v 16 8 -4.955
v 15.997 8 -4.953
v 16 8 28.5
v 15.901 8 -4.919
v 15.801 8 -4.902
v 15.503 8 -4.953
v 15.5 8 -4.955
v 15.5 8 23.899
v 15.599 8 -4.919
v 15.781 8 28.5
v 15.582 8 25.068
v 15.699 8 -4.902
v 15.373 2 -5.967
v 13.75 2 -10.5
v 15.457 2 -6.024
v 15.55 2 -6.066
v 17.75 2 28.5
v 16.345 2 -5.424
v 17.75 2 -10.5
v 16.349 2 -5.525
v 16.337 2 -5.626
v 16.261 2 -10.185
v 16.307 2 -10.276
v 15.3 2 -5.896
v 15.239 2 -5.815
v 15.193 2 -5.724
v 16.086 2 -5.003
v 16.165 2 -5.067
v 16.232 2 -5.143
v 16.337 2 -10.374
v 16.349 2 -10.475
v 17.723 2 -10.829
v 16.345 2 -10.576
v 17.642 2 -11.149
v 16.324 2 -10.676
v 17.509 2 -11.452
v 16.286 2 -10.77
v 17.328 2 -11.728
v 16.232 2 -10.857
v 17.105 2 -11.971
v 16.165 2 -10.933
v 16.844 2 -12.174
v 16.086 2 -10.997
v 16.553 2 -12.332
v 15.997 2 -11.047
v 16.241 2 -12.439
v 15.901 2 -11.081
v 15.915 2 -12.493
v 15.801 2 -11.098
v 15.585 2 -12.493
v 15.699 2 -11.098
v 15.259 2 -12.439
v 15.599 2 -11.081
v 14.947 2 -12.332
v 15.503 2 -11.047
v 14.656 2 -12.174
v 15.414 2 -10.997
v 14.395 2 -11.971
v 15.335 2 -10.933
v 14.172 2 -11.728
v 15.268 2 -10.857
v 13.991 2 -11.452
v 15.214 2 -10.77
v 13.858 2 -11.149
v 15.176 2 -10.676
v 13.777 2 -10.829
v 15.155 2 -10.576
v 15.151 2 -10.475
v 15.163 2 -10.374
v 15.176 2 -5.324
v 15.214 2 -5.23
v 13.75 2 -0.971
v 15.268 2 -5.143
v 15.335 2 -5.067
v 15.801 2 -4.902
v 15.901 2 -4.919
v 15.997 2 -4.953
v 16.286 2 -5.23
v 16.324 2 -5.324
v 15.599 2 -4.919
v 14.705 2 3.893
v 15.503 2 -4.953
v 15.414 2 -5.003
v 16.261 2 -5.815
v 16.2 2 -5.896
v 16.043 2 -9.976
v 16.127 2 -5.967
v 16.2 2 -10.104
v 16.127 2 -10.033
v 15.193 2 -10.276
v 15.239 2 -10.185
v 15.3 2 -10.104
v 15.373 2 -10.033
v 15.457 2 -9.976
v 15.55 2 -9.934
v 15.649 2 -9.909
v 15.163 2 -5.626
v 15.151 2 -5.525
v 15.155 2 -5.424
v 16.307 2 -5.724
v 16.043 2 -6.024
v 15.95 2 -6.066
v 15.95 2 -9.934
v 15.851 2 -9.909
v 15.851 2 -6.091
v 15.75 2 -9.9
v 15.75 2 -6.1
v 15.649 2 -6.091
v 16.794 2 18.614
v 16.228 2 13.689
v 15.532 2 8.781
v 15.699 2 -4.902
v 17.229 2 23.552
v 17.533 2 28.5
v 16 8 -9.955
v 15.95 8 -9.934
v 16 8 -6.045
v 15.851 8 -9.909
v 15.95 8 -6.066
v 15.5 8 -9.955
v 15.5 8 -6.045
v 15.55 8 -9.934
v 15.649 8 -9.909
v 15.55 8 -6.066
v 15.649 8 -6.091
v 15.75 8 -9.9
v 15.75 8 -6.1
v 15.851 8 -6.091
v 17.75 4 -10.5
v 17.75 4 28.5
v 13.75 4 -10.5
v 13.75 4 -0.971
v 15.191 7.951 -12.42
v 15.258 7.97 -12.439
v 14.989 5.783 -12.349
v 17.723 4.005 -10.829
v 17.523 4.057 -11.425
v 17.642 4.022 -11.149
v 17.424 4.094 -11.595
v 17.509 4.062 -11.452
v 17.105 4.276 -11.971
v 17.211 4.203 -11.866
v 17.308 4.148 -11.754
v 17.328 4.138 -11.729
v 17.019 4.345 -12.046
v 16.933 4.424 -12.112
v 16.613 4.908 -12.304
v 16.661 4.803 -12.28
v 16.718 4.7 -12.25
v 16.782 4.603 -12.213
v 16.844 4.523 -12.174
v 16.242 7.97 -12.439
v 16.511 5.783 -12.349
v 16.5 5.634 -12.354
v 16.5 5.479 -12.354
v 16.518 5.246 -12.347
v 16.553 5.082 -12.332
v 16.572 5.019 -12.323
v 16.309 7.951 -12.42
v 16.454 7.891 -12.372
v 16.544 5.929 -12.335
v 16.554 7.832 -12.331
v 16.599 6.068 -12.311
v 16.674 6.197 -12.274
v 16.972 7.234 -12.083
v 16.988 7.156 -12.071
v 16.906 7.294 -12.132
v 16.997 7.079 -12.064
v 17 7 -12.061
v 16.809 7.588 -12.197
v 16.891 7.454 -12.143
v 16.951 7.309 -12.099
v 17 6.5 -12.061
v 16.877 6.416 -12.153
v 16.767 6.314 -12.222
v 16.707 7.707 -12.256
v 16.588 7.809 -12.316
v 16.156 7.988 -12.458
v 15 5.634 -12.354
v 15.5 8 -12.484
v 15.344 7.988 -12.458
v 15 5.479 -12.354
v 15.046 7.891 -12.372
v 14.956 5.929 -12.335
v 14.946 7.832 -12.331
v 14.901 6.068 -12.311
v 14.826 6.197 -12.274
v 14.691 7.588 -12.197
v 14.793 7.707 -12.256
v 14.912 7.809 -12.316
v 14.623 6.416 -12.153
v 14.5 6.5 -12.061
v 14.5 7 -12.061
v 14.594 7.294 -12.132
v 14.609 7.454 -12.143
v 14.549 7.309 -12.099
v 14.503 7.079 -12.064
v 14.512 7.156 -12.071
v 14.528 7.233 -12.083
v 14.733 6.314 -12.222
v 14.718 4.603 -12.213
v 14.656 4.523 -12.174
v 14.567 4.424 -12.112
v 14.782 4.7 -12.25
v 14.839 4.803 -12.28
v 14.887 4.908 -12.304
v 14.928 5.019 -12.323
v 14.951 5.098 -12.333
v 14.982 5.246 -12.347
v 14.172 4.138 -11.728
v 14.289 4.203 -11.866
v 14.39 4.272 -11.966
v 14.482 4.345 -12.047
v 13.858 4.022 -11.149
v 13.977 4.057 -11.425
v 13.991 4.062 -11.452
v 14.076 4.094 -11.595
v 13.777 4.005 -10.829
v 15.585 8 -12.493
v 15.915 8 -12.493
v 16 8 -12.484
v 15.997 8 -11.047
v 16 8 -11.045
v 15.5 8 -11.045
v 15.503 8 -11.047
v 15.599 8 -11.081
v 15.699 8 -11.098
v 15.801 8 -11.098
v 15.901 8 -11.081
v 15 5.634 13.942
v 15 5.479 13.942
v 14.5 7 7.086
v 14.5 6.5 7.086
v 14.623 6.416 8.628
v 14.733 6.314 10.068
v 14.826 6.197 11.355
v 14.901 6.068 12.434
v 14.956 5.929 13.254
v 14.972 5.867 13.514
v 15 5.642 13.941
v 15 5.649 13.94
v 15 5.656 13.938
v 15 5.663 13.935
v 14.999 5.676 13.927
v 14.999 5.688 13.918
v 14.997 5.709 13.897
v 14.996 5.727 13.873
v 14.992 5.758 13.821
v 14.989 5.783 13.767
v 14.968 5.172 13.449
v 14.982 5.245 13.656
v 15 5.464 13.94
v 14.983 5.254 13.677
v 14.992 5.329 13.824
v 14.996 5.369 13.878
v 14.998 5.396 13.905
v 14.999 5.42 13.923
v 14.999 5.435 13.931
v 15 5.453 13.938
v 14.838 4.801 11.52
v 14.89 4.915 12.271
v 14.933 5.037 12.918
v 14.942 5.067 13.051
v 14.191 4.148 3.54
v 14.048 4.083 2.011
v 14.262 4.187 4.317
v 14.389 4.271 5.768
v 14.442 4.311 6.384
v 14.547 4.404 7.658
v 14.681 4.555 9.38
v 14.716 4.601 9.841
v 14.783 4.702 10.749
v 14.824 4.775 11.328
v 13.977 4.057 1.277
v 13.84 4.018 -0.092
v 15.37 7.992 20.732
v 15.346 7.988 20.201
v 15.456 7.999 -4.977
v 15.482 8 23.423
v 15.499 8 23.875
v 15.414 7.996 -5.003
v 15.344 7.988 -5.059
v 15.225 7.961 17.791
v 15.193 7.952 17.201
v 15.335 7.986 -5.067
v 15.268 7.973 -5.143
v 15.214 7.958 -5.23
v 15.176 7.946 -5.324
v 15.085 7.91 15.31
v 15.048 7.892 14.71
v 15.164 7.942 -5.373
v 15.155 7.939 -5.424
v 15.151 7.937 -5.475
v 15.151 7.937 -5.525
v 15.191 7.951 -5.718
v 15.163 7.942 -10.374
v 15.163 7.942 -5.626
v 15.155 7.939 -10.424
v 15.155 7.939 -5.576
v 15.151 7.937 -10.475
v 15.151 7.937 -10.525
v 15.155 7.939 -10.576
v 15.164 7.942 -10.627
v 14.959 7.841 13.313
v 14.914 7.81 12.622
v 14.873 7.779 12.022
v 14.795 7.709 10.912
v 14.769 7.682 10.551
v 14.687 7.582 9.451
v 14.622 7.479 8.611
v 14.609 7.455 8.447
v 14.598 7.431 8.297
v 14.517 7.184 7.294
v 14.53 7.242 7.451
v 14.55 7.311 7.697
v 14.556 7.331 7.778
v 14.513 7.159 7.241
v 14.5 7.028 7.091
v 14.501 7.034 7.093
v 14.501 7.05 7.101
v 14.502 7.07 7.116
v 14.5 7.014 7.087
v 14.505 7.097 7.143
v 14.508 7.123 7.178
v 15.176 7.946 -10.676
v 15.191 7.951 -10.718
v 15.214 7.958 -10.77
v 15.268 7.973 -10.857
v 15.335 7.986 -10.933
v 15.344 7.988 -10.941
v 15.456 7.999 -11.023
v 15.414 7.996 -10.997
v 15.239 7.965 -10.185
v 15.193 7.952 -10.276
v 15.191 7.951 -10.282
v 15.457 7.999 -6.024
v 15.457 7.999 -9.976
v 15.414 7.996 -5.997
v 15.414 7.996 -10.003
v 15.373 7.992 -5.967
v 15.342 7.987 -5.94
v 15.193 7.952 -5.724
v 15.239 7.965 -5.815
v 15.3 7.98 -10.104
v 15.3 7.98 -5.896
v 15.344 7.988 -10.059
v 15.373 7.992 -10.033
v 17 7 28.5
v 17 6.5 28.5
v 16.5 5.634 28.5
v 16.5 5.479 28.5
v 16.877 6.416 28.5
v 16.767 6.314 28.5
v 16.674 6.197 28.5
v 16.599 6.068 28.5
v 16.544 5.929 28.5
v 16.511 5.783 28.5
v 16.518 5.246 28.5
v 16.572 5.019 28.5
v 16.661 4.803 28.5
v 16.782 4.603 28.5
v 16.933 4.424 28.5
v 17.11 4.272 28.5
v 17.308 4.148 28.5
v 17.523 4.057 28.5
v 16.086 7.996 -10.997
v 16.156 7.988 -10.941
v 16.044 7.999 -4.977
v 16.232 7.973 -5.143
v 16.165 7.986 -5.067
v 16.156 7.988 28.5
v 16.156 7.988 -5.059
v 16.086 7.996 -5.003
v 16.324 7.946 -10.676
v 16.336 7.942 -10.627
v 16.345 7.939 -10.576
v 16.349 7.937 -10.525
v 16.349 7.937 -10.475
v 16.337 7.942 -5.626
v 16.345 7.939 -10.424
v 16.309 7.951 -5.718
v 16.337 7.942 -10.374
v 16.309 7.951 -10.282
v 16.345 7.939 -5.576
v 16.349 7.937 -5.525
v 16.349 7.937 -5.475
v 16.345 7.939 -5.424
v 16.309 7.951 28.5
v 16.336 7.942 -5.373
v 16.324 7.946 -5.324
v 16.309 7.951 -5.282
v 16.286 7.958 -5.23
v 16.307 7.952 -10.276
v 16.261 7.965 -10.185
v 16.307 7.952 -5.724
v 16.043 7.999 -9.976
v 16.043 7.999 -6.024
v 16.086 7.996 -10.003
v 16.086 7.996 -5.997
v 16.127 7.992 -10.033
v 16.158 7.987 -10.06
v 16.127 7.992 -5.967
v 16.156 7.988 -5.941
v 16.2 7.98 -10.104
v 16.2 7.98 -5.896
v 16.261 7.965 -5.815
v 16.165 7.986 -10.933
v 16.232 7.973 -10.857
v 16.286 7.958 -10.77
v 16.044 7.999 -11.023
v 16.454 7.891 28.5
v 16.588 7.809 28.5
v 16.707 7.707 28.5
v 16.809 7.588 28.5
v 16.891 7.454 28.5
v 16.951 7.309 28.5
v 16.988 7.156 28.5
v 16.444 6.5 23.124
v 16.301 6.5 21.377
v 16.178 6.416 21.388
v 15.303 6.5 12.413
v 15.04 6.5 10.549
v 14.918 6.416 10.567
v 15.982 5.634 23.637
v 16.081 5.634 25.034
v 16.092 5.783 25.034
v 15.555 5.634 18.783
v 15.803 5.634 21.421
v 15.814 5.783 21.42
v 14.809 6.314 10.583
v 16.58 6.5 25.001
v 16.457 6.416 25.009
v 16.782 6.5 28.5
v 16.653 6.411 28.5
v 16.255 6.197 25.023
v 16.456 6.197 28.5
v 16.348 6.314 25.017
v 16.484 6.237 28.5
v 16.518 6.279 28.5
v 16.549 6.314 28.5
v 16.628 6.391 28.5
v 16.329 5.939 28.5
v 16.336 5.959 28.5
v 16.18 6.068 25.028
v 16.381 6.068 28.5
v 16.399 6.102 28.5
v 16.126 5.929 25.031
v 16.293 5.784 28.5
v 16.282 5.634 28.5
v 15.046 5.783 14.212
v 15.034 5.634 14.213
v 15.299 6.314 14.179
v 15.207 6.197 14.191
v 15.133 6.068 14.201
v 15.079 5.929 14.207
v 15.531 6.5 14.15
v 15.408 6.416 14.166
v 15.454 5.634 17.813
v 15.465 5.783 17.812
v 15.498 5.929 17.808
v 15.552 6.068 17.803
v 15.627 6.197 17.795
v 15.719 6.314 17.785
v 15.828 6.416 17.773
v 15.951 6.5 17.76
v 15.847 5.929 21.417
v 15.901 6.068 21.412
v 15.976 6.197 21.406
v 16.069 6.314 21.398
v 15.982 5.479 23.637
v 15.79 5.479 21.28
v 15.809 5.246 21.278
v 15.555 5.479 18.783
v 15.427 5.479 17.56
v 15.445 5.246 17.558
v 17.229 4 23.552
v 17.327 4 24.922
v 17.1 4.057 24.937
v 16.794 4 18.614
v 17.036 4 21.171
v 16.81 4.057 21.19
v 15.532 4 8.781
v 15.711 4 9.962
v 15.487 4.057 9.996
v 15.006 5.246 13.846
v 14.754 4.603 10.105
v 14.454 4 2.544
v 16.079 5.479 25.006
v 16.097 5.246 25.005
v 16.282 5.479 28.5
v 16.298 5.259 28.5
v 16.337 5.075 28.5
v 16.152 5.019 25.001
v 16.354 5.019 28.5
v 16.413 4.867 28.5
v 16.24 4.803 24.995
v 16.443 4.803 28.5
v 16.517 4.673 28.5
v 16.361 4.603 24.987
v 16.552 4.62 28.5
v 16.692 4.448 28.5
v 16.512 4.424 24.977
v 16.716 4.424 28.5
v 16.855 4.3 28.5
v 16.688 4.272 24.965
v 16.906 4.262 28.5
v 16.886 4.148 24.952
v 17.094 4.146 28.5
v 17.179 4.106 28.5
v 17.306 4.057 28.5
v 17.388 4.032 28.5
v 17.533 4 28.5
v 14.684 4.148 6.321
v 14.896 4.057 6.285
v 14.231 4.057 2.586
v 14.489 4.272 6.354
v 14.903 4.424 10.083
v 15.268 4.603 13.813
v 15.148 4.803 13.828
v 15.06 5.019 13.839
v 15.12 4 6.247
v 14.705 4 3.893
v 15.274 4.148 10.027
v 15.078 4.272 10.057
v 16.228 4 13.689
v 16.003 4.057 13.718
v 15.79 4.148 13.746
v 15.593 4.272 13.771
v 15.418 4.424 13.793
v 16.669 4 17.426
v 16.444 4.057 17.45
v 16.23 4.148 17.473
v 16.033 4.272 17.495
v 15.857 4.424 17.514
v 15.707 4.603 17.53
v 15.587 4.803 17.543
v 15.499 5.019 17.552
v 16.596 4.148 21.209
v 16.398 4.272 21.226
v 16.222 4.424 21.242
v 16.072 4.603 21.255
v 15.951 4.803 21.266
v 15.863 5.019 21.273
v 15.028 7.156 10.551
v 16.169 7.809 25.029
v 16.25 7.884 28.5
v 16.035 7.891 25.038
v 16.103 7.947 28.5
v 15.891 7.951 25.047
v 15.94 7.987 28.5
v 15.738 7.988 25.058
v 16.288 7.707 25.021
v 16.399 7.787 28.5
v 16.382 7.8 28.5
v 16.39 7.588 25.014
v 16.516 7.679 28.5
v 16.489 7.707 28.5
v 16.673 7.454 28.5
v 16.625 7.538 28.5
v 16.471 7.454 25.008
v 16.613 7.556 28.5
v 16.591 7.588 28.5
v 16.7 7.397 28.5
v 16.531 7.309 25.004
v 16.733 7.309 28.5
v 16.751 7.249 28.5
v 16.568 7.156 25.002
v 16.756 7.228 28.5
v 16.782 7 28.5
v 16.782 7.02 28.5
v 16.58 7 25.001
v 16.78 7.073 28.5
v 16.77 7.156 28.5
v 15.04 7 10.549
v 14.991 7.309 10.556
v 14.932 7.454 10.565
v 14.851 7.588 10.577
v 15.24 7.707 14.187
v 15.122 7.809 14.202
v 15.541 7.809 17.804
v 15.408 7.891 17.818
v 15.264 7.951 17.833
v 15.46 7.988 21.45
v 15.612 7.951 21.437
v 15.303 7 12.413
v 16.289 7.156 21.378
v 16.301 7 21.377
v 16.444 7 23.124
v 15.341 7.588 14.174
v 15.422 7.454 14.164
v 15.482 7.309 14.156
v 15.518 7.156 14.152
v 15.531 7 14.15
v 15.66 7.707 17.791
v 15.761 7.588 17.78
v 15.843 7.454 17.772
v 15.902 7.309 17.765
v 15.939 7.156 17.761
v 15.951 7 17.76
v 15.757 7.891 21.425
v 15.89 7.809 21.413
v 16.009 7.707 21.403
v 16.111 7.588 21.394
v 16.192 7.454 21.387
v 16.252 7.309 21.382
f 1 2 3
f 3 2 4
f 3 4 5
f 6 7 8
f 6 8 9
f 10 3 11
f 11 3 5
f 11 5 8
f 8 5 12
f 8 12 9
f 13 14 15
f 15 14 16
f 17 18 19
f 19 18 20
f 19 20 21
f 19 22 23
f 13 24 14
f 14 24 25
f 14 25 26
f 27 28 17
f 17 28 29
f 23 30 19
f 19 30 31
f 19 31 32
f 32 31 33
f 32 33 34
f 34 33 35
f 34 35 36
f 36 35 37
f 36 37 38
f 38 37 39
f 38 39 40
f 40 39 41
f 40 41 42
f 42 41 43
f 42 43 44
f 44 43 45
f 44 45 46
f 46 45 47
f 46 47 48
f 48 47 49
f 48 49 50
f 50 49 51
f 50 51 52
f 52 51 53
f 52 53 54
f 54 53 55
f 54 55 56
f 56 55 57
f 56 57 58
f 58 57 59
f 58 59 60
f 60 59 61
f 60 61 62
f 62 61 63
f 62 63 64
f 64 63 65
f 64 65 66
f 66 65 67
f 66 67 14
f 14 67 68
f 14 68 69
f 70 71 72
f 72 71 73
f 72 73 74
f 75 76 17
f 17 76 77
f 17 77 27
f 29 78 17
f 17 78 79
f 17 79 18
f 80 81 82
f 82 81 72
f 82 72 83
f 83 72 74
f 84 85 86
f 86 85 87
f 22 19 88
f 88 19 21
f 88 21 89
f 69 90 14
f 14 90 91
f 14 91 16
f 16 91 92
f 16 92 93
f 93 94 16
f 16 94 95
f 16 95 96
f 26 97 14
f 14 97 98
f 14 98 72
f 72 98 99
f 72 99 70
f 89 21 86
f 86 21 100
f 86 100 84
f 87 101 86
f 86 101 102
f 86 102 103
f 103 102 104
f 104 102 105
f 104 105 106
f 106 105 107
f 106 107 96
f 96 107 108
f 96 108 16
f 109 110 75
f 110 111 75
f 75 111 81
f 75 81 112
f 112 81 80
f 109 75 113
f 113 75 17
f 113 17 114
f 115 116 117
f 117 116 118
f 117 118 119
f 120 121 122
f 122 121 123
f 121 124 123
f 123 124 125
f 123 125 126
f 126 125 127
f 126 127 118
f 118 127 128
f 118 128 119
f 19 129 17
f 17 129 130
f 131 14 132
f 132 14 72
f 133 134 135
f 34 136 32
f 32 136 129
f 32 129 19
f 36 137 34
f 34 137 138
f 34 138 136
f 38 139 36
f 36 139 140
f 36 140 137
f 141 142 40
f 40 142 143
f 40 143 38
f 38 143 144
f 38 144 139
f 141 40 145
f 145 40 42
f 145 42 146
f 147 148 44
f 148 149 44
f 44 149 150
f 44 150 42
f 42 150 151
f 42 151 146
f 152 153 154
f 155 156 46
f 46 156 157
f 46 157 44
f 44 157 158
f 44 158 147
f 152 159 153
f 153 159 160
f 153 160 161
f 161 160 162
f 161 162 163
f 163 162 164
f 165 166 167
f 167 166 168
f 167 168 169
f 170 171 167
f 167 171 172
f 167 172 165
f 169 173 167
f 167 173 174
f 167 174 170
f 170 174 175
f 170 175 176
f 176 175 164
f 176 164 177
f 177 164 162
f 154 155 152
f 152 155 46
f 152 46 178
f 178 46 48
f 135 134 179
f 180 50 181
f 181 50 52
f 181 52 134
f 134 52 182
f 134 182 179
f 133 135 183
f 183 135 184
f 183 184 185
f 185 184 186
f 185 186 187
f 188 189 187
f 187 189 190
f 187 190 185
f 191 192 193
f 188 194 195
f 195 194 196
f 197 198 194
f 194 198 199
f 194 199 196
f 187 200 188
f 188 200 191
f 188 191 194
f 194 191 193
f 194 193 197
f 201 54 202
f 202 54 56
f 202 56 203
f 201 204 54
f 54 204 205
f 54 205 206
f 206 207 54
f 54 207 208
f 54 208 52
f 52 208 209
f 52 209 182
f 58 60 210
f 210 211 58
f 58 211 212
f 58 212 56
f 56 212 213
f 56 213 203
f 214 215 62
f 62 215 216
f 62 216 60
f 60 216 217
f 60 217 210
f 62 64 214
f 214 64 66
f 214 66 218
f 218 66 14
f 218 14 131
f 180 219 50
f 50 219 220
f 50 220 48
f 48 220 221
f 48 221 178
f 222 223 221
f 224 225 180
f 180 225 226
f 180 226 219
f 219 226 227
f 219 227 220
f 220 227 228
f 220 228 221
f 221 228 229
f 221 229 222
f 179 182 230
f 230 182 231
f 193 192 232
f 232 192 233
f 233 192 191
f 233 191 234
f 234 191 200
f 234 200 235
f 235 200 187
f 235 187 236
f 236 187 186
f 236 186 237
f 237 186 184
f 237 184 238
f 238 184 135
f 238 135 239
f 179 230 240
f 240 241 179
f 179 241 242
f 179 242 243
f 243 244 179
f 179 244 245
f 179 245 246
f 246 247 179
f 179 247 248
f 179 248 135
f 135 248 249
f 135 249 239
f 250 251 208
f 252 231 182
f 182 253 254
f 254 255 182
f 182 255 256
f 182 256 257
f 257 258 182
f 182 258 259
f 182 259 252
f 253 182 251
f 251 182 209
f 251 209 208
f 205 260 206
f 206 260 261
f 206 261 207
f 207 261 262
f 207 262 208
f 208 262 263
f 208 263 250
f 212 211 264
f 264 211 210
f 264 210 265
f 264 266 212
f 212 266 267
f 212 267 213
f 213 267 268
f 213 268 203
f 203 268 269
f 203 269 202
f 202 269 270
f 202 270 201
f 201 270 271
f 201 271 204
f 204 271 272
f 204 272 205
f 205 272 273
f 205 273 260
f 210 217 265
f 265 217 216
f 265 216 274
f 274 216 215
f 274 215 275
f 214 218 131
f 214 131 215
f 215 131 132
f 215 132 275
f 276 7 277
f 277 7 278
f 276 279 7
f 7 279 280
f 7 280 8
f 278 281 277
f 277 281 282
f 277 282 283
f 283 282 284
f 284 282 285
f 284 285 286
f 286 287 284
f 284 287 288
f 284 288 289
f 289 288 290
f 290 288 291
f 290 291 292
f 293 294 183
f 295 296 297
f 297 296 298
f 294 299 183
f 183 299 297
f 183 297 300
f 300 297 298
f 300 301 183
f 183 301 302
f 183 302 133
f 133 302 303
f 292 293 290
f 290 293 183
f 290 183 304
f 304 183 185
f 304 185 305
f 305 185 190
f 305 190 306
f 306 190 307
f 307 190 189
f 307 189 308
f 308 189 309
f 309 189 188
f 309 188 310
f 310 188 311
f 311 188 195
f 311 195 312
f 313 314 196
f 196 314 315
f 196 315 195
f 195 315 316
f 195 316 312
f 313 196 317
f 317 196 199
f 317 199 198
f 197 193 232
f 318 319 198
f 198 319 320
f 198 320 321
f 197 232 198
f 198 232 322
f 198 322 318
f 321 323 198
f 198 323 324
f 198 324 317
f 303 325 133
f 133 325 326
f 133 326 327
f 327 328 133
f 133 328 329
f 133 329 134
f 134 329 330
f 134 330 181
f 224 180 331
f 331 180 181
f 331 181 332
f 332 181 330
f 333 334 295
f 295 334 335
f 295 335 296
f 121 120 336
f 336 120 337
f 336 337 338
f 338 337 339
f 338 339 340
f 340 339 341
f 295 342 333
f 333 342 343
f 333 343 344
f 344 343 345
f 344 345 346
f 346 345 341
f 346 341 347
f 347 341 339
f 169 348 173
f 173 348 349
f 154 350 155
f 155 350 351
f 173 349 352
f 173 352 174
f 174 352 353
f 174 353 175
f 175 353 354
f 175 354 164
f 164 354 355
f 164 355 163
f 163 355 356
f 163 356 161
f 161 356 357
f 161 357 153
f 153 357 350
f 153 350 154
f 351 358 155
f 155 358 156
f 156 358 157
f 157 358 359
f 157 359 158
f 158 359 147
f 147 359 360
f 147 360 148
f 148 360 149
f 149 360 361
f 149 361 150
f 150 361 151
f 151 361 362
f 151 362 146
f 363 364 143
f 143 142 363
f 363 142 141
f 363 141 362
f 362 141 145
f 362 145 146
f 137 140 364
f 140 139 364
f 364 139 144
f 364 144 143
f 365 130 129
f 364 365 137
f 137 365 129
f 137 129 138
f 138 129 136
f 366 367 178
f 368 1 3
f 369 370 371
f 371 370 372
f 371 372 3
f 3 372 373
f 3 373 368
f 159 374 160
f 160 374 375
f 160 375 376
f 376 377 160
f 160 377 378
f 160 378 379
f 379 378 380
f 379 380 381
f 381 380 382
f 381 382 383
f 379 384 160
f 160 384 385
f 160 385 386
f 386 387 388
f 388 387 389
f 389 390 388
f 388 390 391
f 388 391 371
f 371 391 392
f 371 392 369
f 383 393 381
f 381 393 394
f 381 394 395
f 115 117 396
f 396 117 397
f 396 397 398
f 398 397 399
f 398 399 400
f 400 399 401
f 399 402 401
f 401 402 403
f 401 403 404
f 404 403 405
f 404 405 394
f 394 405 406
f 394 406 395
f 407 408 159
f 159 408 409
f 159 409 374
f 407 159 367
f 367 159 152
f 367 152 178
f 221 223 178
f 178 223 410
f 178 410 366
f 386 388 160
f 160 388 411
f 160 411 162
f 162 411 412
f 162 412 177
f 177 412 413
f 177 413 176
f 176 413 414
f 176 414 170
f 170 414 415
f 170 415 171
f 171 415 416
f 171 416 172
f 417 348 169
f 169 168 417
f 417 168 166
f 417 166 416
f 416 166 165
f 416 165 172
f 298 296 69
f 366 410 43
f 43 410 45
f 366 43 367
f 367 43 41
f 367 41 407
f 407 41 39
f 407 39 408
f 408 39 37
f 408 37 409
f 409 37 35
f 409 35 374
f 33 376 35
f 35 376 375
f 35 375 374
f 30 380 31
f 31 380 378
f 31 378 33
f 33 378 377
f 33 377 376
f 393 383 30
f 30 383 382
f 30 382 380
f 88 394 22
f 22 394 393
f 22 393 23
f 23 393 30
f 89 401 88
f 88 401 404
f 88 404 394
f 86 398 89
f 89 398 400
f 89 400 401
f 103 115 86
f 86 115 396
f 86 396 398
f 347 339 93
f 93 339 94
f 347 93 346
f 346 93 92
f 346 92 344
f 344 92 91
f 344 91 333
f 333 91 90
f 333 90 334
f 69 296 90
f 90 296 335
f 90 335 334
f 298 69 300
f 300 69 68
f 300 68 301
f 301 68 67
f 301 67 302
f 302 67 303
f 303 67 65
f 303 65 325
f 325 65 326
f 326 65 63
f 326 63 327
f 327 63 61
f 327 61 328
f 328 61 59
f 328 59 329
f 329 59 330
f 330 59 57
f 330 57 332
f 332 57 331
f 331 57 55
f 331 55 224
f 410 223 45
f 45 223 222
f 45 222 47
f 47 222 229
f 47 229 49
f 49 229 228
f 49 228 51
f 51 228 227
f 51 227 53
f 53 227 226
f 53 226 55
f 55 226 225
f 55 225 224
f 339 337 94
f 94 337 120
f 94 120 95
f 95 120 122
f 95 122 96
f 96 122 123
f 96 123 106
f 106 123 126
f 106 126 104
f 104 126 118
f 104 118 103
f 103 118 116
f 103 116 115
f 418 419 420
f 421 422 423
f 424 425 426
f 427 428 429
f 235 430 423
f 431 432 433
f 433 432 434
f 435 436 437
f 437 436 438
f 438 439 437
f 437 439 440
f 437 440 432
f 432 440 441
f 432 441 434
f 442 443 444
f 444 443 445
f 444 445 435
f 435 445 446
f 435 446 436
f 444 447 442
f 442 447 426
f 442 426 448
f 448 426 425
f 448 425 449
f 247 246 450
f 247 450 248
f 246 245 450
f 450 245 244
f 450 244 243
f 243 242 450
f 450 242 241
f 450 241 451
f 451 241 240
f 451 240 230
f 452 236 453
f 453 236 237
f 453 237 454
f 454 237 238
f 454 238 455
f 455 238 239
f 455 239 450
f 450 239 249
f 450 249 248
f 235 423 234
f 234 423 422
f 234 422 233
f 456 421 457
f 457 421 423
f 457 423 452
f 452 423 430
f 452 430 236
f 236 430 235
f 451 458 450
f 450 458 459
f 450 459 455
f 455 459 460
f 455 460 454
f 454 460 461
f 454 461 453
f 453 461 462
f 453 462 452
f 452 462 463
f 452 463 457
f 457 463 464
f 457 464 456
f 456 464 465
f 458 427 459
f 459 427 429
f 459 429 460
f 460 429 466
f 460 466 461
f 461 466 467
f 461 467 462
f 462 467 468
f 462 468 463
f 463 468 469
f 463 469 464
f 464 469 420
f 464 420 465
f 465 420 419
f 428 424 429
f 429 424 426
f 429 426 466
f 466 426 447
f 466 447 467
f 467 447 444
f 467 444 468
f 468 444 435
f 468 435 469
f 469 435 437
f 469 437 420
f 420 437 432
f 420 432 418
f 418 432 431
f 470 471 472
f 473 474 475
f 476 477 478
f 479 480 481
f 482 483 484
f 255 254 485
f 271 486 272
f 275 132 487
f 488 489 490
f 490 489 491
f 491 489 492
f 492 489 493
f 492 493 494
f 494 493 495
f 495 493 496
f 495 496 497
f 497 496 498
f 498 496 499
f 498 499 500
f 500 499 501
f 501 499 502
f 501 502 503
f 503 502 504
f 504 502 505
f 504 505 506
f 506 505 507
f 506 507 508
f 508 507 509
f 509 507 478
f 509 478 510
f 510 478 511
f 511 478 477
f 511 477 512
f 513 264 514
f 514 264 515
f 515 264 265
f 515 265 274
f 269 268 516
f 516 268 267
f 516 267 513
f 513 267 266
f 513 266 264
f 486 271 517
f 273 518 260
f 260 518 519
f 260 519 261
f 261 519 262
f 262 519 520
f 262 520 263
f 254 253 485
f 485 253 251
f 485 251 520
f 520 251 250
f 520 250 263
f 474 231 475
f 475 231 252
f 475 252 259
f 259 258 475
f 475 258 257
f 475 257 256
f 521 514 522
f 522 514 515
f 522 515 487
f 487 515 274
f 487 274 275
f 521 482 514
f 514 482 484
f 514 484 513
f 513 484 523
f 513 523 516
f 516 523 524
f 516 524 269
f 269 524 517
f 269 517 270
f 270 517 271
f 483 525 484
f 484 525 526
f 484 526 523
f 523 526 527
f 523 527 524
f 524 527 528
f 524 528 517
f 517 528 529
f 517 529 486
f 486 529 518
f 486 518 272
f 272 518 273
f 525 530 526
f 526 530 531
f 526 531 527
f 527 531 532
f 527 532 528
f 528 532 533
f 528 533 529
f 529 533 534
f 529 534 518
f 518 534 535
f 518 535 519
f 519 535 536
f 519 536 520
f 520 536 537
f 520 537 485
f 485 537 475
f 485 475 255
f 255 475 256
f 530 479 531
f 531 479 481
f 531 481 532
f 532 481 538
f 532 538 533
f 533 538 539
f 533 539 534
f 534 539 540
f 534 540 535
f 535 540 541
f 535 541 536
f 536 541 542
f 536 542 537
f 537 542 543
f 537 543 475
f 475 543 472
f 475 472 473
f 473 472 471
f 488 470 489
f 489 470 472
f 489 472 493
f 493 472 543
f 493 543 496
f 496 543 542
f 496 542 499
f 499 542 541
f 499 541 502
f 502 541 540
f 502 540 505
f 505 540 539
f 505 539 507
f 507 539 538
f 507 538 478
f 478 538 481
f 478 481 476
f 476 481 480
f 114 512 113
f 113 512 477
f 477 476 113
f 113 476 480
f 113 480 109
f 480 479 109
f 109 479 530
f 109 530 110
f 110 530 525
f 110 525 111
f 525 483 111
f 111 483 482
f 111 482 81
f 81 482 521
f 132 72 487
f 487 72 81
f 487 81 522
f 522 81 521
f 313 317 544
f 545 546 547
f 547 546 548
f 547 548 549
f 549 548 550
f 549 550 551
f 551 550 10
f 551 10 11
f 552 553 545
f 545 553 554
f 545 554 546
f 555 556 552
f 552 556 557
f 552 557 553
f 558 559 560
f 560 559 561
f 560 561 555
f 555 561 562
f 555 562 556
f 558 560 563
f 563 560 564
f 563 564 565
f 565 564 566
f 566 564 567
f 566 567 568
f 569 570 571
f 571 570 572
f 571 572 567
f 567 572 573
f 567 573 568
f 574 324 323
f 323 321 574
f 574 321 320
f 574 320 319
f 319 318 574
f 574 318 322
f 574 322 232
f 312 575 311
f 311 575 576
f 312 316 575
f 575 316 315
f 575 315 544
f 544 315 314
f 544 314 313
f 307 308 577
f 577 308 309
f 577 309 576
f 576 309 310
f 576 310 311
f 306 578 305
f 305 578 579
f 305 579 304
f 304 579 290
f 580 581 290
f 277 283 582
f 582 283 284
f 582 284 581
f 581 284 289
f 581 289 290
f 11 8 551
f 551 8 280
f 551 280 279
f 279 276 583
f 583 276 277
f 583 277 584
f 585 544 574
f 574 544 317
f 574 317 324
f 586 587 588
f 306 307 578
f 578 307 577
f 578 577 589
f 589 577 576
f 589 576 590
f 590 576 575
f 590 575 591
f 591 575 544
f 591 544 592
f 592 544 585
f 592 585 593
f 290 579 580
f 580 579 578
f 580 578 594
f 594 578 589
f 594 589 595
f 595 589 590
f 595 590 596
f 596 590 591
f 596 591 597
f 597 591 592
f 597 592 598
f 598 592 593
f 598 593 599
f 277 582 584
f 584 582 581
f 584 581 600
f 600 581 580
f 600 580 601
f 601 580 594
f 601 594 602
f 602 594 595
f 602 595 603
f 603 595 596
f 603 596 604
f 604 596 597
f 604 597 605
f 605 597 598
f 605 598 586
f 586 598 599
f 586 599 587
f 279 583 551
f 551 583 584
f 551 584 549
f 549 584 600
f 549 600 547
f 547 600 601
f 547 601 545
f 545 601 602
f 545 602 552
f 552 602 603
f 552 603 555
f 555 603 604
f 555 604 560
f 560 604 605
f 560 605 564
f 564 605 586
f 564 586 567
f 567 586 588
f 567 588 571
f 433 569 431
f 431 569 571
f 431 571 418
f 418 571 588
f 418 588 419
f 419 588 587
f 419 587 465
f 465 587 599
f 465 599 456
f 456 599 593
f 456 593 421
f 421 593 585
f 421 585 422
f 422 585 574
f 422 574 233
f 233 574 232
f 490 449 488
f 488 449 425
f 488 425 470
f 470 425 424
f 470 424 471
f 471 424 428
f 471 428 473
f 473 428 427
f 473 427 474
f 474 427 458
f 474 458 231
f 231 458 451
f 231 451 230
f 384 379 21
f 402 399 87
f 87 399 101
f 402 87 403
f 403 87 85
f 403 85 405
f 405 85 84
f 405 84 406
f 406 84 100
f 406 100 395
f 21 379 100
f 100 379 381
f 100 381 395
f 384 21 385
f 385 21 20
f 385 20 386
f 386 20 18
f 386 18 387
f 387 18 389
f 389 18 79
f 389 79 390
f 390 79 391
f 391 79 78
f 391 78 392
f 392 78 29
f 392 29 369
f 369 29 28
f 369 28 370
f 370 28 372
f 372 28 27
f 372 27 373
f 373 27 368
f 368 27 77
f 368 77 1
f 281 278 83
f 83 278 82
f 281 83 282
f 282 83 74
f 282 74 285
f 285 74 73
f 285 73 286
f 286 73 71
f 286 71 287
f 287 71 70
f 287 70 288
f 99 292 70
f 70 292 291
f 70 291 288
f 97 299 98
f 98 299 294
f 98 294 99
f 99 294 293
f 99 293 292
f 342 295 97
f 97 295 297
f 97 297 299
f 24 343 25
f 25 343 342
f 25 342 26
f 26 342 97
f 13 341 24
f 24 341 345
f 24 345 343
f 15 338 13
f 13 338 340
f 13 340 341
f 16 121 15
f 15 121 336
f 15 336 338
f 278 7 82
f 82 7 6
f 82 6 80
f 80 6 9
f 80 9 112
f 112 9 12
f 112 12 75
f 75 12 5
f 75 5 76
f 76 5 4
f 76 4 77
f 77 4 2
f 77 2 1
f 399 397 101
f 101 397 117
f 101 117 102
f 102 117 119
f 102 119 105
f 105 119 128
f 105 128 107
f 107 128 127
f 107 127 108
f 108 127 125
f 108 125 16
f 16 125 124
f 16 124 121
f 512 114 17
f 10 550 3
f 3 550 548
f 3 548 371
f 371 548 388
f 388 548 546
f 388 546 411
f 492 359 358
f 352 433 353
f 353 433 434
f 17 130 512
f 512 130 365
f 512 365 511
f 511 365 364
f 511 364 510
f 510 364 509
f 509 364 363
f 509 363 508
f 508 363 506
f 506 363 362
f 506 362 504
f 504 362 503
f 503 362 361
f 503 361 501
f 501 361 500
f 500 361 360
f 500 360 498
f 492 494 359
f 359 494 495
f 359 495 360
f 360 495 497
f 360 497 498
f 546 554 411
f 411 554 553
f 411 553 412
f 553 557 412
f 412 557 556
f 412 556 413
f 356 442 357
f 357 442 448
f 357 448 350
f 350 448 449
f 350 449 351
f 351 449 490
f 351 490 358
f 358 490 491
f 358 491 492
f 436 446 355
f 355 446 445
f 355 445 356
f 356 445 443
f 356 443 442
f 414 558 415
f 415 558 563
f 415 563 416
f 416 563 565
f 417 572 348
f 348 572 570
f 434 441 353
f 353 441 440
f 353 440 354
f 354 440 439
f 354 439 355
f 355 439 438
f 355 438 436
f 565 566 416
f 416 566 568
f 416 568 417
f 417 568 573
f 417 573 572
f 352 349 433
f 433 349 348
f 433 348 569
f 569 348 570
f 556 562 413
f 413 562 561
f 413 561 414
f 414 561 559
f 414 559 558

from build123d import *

# Parameters (mm, degrees)
SKETCH_1_W          = 4
SKETCH_1_H          = 17
SKETCH_1_H_2        = 8
EXTRUDE_1_DEPTH     = 4
SKETCH_1_7_W        = 44.5
SKETCH_1_7_H        = 8
EXTRUDE_2_DEPTH     = 3.5
SKETCH_2_W          = 18.5
SKETCH_2_H          = 1.5
CUT_EXTRUDE_1_DEPTH = 34.705526253
SKETCH_2_3_W        = 2.5
SKETCH_2_3_H        = 1.5
EXTRUDE_4_DEPTH     = 25
FILLET_1_R          = 1
FILLET_2_R          = 1.5
FILLET_3_R          = 1
SKETCH_10_W         = 4.5
SKETCH_10_H         = 8
SKETCH_10_W_2       = 36
SKETCH_10_H_2       = 50
CUT_EXTRUDE_2_DEPTH = 45.331845213
CUT_EXTRUDE_3_DEPTH = 43.252958476
SKETCH_12_W         = 4
SKETCH_12_H         = 50
CUT_EXTRUDE_4_DEPTH = 2
SKETCH_13_R         = 0.6
CUT_EXTRUDE_5_DEPTH = 42.920311452
SKETCH_24_R         = 0.6
CUT_EXTRUDE_6_DEPTH = 42.920311452
SKETCH_25_W         = 9.588346595
SKETCH_25_H         = 3.3
CUT_EXTRUDE_7_DEPTH = 42.920311452
SKETCH_26_W         = 7.846978632
SKETCH_26_H         = 7.676354821
CUT_EXTRUDE_8_DEPTH = 39.99618586
SKETCH_27_W         = 71.858666529
SKETCH_27_H         = 35.216616035
CUT_EXTRUDE_9_DEPTH = 35.515395273


with BuildPart() as part:
    # 草图1 → 凸台-拉伸1 (new body)
    with BuildSketch(Plane(origin=(0, 0, 0), x_dir=(1, 0, 0), z_dir=(0, 1, 0))):
        with Locations((-15.75, -4)):
            Rectangle(SKETCH_1_W, SKETCH_1_H)
        with Locations((15.75, -4)):
            Rectangle(SKETCH_1_W, SKETCH_1_H)
        with Locations((15.75, 8.5)):
            Rectangle(SKETCH_1_W, SKETCH_1_H_2)
        with Locations((-15.75, 8.5)):
            Rectangle(SKETCH_1_W, SKETCH_1_H_2)
    extrude(amount=EXTRUDE_1_DEPTH)

    # 草图1<7> → 凸台-拉伸2 (add)
    with BuildSketch(Plane(origin=(0, 0, 0), x_dir=(1, 0, 0), z_dir=(0, 1, 0))):
        with Locations((0, 8.5)):
            Rectangle(SKETCH_1_7_W, SKETCH_1_7_H)
    extrude(amount=EXTRUDE_2_DEPTH)

    # 草图2 → 切除-拉伸1 (cut, through all)
    with BuildSketch(Plane(origin=(0, 0, -12.5), x_dir=(-1, 0, 0), z_dir=(0, 0, -1))):
        with Locations((0, 2.75)):
            Rectangle(SKETCH_2_W, SKETCH_2_H)
        Polygon((13.25, 3.5), (9.25, 3.5), (9.25, 2), align=None)
        Polygon((-9.25, 3.5), (-13.25, 3.5), (-9.25, 2), align=None)
        Polygon((-22.25, 3.5), (-22.25, 2), (-18.25, 3.5), align=None)
        Polygon((22.25, 3.5), (18.25, 3.5), (22.25, 2), align=None)
    extrude(amount=-CUT_EXTRUDE_1_DEPTH, mode=Mode.SUBTRACT)

    # 草图2<3> → 凸台-拉伸4 (add, through all)
    with BuildSketch(Plane(origin=(0, 0, -12.5), x_dir=(-1, 0, 0), z_dir=(0, 0, -1))):
        with Locations((-15.75, 7.25)):
            Rectangle(SKETCH_2_3_W, SKETCH_2_3_H)
        Polygon((-15, 6.5), (-16.5, 6.5), (-16.5, 4), (-15.75, 4), (-15, 4), align=None)
        with Locations((15.75, 7.25)):
            Rectangle(SKETCH_2_3_W, SKETCH_2_3_H)
        Polygon((16.5, 6.5), (15, 6.5), (15, 4), (15.75, 4), (16.5, 4), align=None)
    extrude(amount=-EXTRUDE_4_DEPTH)

    # 圆角1
    # the kernel refuses this fillet: 1 mm, written as the material it adds along each edge
    with BuildSketch(Plane(origin=(-16.5, 6.5, -12.5), x_dir=(-1, 0, 0), z_dir=(0, 0, 1)), Plane(origin=(15, 6.5, -12.5), x_dir=(-1, 0, 0), z_dir=(0, 0, 1))) as fillet_1_piece_1:
        with BuildLine():
            CenterArc((1, 0.866025404), FILLET_1_R, 180, 60)
            Line((0, 0.866025404), (-0.02, 0.866025404))
            Line((-0.02, 0.866025404), (-0.02, 0))
            Line((-0.02, 0), (0, -0.02))
            ThreePointArc((0, -0.02), (0.25, -0.02), (0.49, -0.017320508))
            Line((0.49, -0.017320508), (0.5, 0))
        make_face()
    extrude(amount=25)
    with BuildSketch(Plane(origin=(-15, 6.5, -12.5), x_dir=(0, -1, 0), z_dir=(0, 0, 1)), Plane(origin=(16.5, 6.5, -12.5), x_dir=(0, -1, 0), z_dir=(0, 0, 1))) as fillet_1_piece_2:
        with BuildLine():
            CenterArc((0.866025404, 1), FILLET_1_R, 210, 60)
            Line((0, 0.5), (-0.017320508, 0.49))
            ThreePointArc((-0.017320508, 0.49), (-0.02, 0.25), (-0.02, 0))
            Line((-0.02, 0), (0, -0.02))
            Line((0, -0.02), (0.866025404, -0.02))
            Line((0.866025404, -0.02), (0.866025404, 0))
        make_face()
    extrude(amount=25)

    # 圆角2
    # the kernel refuses this fillet: 1.5 mm, written as the material it adds along each edge
    with BuildSketch(Plane(origin=(16.5, 4, -12.5), x_dir=(1, 0, 0), z_dir=(0, 0, 1))) as fillet_2_piece_1:
        with BuildLine():
            CenterArc((1.5, 1.479019946), FILLET_2_R, 180, 80.405931773)
            Line((0, 1.479019946), (-0.03, 1.479019946))
            Line((-0.03, 1.479019946), (-0.03, 0))
            Line((-0.03, 0), (0, -0.03))
            ThreePointArc((0, -0.03), (0.625, -0.03), (1.245, -0.029580399))
            Line((1.245, -0.029580399), (1.25, 0))
        make_face()
    extrude(amount=25)
    with BuildSketch(Plane(origin=(15, 4, -12.5), x_dir=(0, 1, 0), z_dir=(0, 0, 1)), Plane(origin=(-16.5, 4, -12.5), x_dir=(0, 1, 0), z_dir=(0, 0, 1))) as fillet_2_piece_2:
        with BuildLine():
            CenterArc((1.479019946, 1.5), FILLET_2_R, 189.594068227, 80.405931773)
            Line((0, 1.25), (-0.029580399, 1.245))
            ThreePointArc((-0.029580399, 1.245), (-0.03, 0.625), (-0.03, 0))
            Line((-0.03, 0), (0, -0.03))
            Line((0, -0.03), (1.479019946, -0.03))
            Line((1.479019946, -0.03), (1.479019946, 0))
        make_face()
    extrude(amount=25)
    with BuildSketch(Plane(origin=(-15, 4, -12.5), x_dir=(0, 1, 0), z_dir=(0, 0, 1))) as fillet_2_piece_3:
        with BuildLine():
            CenterArc((1.479019946, -1.5), FILLET_2_R, 90, 80.405931773)
            Line((0, -1.25), (-0.029580399, -1.245))
            ThreePointArc((-0.029580399, -1.245), (-0.03, -0.625), (-0.03, 0))
            Line((-0.03, 0), (0, 0.03))
            Line((0, 0.03), (1.479019946, 0.03))
            Line((1.479019946, 0.03), (1.479019946, 0))
        make_face()
    extrude(amount=25)

    # 圆角3
    fillet_3_edges = [part.edges().sort_by_distance(p)[0] for p in [
        (14.5, 8, 0),
        (17, 8, 0),
        (-17, 8, 0),
        (-14.5, 8, 0),
    ]]
    fillet(fillet_3_edges, radius=FILLET_3_R)

    # 镜向2: part across plane


with BuildPart() as part_1:
    add(part.part)
    add(part.part.mirror(Plane(origin=(0, 4, 12.5), x_dir=(1, 0, 0), z_dir=(0, 0, -1))))

    # 草图10 → 切除-拉伸2 (cut, through all)
    with BuildSketch(Plane.XZ):
        with Locations((-20, 33.5)):
            Rectangle(SKETCH_10_W, SKETCH_10_H)
        with Locations((-20, -8.5)):
            Rectangle(SKETCH_10_W, SKETCH_10_H)
        with Locations((4.25, 12.5)):
            Rectangle(SKETCH_10_W_2, SKETCH_10_H_2)
    extrude(amount=-CUT_EXTRUDE_2_DEPTH, mode=Mode.SUBTRACT)

    # 草图11 → 切除-拉伸3 (cut, through all)
    with BuildSketch(Plane(origin=(0, 0, 0), x_dir=(-1, 0, 0), z_dir=(0, -1, 0))):
        with BuildLine():
            ThreePointArc((15.75, 12.5), (17.164213562, 11.914213562), (17.75, 10.5))
            Line((17.75, 10.5), (17.75, 12.5))
            Line((17.75, 12.5), (15.75, 12.5))
        make_face()
        with BuildLine():
            ThreePointArc((13.75, 10.5), (14.335786438, 11.914213562), (15.75, 12.5))
            Line((15.75, 12.5), (13.75, 12.5))
            Line((13.75, 12.5), (13.75, 10.5))
        make_face()
    extrude(amount=-CUT_EXTRUDE_3_DEPTH, mode=Mode.SUBTRACT)

    # 草图12 → 切除-拉伸4 (cut)
    with BuildSketch(Plane.XZ):
        with Locations((-15.75, 12.5)):
            Rectangle(SKETCH_12_W, SKETCH_12_H)
    extrude(amount=-CUT_EXTRUDE_4_DEPTH, mode=Mode.SUBTRACT)

    # 草图13 → 切除-拉伸5 (cut, through all)
    with BuildSketch(Plane(origin=(0, 8, 0), x_dir=(1, 0, 0), z_dir=(0, 1, 0))):
        with Locations(Location((-15.75, 10.5, 0), (0, 0, 270))):
            Circle(SKETCH_13_R)
    extrude(amount=-CUT_EXTRUDE_5_DEPTH, mode=Mode.SUBTRACT)

    # 草图16 → 切除-旋转1 (revolve, cut)
    with BuildSketch(Plane.XY.offset(37.5)):
        with BuildLine():
            Line((-17.75, 0), (-13.75, 0))
            Line((-13.75, 0), (-13.75, 4))
            ThreePointArc((-13.75, 4), (-14.645643924, 4.510774109), (-15, 5.479019946))
            Line((-15, 5.479019946), (-15, 5.633974596))
            ThreePointArc((-15, 5.633974596), (-14.866025404, 6.133974596), (-14.5, 6.5))
            Line((-14.5, 6.5), (-14.5, 7))
            ThreePointArc((-14.5, 7), (-14.792893219, 7.707106781), (-15.5, 8))
            Line((-15.5, 8), (-16, 8))
            ThreePointArc((-16, 8), (-16.707106781, 7.707106781), (-17, 7))
            Line((-17, 7), (-17, 6.5))
            ThreePointArc((-17, 6.5), (-16.633974596, 6.133974596), (-16.5, 5.633974596))
            Line((-16.5, 5.633974596), (-16.5, 5.479019946))
            ThreePointArc((-16.5, 5.479019946), (-16.854356076, 4.510774109), (-17.75, 4))
            Line((-17.75, 4), (-17.75, 0))
        make_face()
    revolve(axis=Axis((169.25, 37.729395322, 37.5), (0, -1, 0)), mode=Mode.SUBTRACT)

    # 草图24 → 切除-拉伸6 (cut, through all)
    with BuildSketch(Plane(origin=(0, 2, 0), x_dir=(-1, 0, 0), z_dir=(0, -1, 0))):
        with Locations(Location((15.75, 5.5, 0), (0, 0, 90))):
            Circle(SKETCH_24_R)
    extrude(amount=-CUT_EXTRUDE_6_DEPTH, mode=Mode.SUBTRACT)

    # 草图25 → 切除-拉伸7 (cut, through all)
    with BuildSketch(Plane(origin=(0, 8, 0), x_dir=(1, 0, 0), z_dir=(0, 1, 0))):
        with Locations((-13.334902889, -35.85)):
            Rectangle(SKETCH_25_W, SKETCH_25_H)
    extrude(amount=-CUT_EXTRUDE_7_DEPTH, mode=Mode.SUBTRACT)

    # 草图26 → 切除-拉伸8 (cut, through all)
    with BuildSketch(Plane(origin=(0, 8, 0), x_dir=(1, 0, 0), z_dir=(0, 1, 0))):
        with Locations((-16.033810668, -32.338177411)):
            Rectangle(SKETCH_26_W, SKETCH_26_H)
    extrude(amount=-CUT_EXTRUDE_8_DEPTH, mode=Mode.SUBTRACT)


with BuildPart() as body_2:
    # 镜向3: mirrored copy
    add(part_1.part.mirror(Plane(origin=(0, 0, 0), x_dir=(0, 0, 1), z_dir=(1, 0, 0))))


with BuildPart() as part_2:
    add(part_1.part)

    # 草图27 → 切除-拉伸9 (cut, through all)
    with BuildSketch(Plane(origin=(0, 0, 0), x_dir=(0, 0, -1), z_dir=(1, 0, 0))):
        with Locations((-17.475525281, 10.465734061)):
            Rectangle(SKETCH_27_W, SKETCH_27_H)
    extrude(amount=-CUT_EXTRUDE_9_DEPTH, mode=Mode.SUBTRACT)


solid = body_2.part
